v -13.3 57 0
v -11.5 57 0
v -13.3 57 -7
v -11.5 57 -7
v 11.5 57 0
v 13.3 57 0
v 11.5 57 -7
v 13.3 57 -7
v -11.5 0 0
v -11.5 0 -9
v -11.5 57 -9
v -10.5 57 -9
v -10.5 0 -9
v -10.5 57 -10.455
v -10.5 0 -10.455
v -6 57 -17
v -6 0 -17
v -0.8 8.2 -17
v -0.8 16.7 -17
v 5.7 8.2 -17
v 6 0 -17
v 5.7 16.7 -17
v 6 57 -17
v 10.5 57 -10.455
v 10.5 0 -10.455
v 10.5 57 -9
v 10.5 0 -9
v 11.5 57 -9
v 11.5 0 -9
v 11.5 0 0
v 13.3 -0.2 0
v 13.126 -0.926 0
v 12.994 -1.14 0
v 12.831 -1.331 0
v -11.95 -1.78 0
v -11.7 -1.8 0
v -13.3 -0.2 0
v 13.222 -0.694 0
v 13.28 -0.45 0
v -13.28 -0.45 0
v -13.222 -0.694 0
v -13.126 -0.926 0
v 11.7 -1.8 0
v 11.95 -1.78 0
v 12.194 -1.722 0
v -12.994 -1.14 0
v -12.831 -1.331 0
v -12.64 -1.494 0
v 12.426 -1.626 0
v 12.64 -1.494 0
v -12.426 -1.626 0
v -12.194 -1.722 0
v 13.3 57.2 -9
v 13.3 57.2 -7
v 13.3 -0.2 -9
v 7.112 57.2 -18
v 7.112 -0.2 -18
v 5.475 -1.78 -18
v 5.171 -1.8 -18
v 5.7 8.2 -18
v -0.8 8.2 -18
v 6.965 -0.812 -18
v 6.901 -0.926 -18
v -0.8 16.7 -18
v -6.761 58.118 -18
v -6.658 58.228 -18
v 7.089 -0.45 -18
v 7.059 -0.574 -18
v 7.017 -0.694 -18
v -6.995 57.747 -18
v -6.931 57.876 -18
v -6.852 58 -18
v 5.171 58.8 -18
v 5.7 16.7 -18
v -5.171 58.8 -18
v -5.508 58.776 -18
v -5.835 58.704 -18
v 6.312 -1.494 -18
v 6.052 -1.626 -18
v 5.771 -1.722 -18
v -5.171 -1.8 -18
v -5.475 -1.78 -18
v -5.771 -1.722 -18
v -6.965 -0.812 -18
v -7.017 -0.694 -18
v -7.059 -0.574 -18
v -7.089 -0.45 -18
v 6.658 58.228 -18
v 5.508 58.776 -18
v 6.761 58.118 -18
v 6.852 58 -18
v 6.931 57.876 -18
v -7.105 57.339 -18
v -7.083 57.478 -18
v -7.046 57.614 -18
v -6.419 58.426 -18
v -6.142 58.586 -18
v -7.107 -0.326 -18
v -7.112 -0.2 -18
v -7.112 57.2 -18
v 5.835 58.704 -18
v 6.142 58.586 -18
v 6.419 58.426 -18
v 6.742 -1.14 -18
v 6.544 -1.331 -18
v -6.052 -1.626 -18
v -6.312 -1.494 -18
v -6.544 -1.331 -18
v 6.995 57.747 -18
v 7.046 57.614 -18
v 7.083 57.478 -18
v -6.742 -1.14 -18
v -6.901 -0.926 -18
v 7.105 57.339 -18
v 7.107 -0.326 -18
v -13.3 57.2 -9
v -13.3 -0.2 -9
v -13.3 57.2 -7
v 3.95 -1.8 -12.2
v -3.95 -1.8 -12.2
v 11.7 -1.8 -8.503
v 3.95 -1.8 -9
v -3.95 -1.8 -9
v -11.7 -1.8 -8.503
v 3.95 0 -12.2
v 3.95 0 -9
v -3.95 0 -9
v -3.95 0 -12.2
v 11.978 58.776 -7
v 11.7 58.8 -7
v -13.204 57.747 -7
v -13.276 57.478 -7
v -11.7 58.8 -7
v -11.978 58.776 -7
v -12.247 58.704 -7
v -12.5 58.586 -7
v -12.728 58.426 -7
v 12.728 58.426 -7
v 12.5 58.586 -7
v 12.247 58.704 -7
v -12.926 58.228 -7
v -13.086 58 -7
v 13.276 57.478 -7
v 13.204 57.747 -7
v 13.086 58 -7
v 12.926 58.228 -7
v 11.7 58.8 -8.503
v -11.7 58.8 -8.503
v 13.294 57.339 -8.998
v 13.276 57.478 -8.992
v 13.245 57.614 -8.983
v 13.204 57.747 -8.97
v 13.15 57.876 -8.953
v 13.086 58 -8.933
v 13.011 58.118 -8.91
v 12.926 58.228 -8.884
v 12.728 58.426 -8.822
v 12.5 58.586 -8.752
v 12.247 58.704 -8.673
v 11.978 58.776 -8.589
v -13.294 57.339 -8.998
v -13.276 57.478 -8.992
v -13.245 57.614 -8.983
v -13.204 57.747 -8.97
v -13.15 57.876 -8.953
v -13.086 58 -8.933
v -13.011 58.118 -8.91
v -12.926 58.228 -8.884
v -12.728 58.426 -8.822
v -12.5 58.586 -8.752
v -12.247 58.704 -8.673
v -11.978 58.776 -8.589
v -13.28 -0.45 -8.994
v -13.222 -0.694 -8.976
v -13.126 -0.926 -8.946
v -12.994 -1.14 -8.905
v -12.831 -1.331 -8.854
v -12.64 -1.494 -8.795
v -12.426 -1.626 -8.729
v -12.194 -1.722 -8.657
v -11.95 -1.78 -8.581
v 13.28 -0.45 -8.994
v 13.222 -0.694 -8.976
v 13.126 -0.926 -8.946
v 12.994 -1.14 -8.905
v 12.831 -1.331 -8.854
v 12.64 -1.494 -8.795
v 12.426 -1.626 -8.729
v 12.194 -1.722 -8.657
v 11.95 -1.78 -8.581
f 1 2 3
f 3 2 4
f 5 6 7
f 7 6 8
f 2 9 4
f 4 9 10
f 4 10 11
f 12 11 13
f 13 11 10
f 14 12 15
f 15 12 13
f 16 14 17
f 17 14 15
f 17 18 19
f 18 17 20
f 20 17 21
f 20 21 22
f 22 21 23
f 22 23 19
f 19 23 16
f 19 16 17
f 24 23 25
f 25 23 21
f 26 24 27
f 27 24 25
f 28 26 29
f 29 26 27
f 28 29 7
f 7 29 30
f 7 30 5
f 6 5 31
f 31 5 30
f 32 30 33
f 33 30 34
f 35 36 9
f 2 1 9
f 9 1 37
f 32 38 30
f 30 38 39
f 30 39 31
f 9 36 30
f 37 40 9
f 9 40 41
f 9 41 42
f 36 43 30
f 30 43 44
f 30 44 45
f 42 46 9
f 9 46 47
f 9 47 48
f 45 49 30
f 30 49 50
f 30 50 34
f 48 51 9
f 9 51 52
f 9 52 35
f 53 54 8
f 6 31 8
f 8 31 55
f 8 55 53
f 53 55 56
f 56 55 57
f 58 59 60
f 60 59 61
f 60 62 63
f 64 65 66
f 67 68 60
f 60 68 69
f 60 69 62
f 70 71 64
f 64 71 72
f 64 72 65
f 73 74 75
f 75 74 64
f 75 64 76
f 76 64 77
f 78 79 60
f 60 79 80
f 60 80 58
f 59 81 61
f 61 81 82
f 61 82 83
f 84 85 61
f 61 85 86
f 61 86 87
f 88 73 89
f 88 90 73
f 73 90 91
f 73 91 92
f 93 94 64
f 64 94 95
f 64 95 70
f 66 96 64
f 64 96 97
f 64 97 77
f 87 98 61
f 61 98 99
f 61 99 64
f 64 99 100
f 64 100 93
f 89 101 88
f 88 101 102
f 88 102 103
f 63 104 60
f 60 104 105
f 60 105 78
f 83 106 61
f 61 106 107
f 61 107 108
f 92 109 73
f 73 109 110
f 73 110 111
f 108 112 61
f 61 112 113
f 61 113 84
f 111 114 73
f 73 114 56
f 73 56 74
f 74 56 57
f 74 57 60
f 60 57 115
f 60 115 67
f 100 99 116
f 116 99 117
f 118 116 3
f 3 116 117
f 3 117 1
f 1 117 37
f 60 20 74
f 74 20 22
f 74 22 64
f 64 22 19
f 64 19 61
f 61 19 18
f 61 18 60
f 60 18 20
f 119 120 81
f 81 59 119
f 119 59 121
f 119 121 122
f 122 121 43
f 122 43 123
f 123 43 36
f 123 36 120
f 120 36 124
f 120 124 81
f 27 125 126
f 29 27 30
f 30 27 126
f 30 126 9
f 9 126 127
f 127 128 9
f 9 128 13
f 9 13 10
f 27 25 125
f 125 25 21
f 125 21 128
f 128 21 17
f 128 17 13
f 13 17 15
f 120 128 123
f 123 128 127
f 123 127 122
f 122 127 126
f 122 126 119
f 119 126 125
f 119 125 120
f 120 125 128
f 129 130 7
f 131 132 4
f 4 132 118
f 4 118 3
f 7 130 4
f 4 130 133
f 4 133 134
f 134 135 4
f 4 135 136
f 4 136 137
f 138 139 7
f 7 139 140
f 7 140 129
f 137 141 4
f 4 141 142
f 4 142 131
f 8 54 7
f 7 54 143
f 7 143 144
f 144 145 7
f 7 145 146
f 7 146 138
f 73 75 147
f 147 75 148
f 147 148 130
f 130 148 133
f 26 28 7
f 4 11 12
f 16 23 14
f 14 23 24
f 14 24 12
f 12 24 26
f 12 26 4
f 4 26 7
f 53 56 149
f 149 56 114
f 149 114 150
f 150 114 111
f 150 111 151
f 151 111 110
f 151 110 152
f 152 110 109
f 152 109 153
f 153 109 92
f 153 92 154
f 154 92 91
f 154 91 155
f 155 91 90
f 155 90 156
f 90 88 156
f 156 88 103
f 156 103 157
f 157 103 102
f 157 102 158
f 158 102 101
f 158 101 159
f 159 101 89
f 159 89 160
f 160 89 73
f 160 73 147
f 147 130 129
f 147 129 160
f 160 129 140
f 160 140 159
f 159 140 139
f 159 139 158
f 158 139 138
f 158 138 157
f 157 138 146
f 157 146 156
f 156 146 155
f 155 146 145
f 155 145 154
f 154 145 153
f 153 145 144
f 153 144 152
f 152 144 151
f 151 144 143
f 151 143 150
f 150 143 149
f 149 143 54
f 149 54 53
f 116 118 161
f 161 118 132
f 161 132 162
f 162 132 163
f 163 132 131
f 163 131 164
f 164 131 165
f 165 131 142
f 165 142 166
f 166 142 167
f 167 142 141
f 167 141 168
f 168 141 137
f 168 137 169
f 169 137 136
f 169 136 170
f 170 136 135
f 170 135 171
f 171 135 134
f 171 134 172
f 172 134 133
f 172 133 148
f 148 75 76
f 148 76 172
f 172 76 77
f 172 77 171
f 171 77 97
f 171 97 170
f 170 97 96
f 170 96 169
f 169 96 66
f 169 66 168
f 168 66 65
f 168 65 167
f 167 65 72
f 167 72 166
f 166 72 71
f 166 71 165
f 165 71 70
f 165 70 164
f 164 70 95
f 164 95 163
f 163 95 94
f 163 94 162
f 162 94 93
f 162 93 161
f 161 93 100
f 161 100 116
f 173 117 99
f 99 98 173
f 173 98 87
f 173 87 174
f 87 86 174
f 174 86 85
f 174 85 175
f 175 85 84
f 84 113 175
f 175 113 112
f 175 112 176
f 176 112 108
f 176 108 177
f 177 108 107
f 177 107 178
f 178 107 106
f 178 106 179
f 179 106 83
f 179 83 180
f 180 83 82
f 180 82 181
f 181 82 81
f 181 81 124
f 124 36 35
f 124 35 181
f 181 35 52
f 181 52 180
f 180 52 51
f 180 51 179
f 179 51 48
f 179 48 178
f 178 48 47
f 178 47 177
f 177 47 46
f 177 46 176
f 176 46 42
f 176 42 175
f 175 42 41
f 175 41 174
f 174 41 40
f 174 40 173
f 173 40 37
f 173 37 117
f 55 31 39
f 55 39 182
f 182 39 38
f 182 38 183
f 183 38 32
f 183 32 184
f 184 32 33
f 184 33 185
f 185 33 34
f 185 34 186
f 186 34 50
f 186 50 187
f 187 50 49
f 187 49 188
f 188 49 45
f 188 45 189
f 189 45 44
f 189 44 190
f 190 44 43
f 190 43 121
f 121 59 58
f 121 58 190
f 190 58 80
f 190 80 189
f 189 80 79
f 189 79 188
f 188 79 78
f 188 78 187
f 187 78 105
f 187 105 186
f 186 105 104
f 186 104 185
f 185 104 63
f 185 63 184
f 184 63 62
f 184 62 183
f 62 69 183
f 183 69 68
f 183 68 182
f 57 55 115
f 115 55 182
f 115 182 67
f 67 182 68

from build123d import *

# Parameters (mm, degrees)
BOSS_EXTRUDE1_DEPTH = 57
SKETCH4_W           = 6.5
SKETCH4_H           = 8.5
CUT_EXTRUDE1_DEPTH  = 62.236345417
BOSS_EXTRUDE2_DEPTH = 1.8
SKETCH5_W           = 7.9
SKETCH5_H           = 3.2
CUT_EXTRUDE2_DEPTH  = 63.91526047
BOSS_EXTRUDE3_DEPTH = 1.8
FILLET1_R           = 1.6


with BuildPart() as part:
    # Sketch1 → Boss-Extrude1 (new body)
    with BuildSketch(Plane(origin=(0, 0, 0), x_dir=(1, 0, 0), z_dir=(0, 1, 0))):
        Polygon((11.5, 0), (11.5, 9), (10.5, 9), (10.5, 10.454545455), (6, 17), (-6, 17), (-10.5, 10.454545455), (-10.5, 9), (-11.5, 9), (-11.5, 0), (-13.3, 0), (-13.3, 9), (-7.331417468, 17.681574593), (-7.1125, 18), (7.1125, 18), (7.368594903, 17.627498323), (13.3, 9), (13.3, 0), align=None)
    extrude(amount=BOSS_EXTRUDE1_DEPTH)

    # Sketch4 → Cut-Extrude1 (cut, through all)
    with BuildSketch(Plane(origin=(0, 0, -18), x_dir=(-1, 0, 0), z_dir=(0, 0, -1))):
        with Locations((-2.45, 12.45)):
            Rectangle(SKETCH4_W, SKETCH4_H)
    extrude(amount=-CUT_EXTRUDE1_DEPTH, mode=Mode.SUBTRACT)

    # Sketch2 → Boss-Extrude2 (add)
    with BuildSketch(Plane.XZ):
        Polygon((-13.3, 0), (-13.3, -9), (-7.1125, -18), (7.1125, -18), (13.3, -9), (13.3, 0), align=None)
    extrude(amount=BOSS_EXTRUDE2_DEPTH)

    # Sketch5 → Cut-Extrude2 (cut, through all)
    with BuildSketch(Plane.XZ.offset(1.8)):
        with Locations((0, -10.6)):
            Rectangle(SKETCH5_W, SKETCH5_H)
    extrude(amount=-CUT_EXTRUDE2_DEPTH, mode=Mode.SUBTRACT)

    # Sketch3 → Boss-Extrude3 (add)
    with BuildSketch(Plane(origin=(0, 57, 0), x_dir=(1, 0, 0), z_dir=(0, 1, 0))):
        Polygon((-13.3, 9), (-7.1125, 18), (7.1125, 18), (13.3, 9), (13.3, 7), (-13.3, 7), align=None)
    extrude(amount=BOSS_EXTRUDE3_DEPTH)

    # Fillet1
    fillet1_edges = [part.edges().sort_by_distance(p)[0] for p in [
        (-13.3, 58.8, -8),
        (13.3, 58.8, -8),
        (10.20625, 58.8, -13.5),
        (-10.20625, 58.8, -13.5),
        (-13.3, -1.8, -4.5),
        (-10.20625, -1.8, -13.5),
        (10.20625, -1.8, -13.5),
        (13.3, -1.8, -4.5),
    ]]
    fillet(fillet1_edges, radius=FILLET1_R)


solid = part.part
